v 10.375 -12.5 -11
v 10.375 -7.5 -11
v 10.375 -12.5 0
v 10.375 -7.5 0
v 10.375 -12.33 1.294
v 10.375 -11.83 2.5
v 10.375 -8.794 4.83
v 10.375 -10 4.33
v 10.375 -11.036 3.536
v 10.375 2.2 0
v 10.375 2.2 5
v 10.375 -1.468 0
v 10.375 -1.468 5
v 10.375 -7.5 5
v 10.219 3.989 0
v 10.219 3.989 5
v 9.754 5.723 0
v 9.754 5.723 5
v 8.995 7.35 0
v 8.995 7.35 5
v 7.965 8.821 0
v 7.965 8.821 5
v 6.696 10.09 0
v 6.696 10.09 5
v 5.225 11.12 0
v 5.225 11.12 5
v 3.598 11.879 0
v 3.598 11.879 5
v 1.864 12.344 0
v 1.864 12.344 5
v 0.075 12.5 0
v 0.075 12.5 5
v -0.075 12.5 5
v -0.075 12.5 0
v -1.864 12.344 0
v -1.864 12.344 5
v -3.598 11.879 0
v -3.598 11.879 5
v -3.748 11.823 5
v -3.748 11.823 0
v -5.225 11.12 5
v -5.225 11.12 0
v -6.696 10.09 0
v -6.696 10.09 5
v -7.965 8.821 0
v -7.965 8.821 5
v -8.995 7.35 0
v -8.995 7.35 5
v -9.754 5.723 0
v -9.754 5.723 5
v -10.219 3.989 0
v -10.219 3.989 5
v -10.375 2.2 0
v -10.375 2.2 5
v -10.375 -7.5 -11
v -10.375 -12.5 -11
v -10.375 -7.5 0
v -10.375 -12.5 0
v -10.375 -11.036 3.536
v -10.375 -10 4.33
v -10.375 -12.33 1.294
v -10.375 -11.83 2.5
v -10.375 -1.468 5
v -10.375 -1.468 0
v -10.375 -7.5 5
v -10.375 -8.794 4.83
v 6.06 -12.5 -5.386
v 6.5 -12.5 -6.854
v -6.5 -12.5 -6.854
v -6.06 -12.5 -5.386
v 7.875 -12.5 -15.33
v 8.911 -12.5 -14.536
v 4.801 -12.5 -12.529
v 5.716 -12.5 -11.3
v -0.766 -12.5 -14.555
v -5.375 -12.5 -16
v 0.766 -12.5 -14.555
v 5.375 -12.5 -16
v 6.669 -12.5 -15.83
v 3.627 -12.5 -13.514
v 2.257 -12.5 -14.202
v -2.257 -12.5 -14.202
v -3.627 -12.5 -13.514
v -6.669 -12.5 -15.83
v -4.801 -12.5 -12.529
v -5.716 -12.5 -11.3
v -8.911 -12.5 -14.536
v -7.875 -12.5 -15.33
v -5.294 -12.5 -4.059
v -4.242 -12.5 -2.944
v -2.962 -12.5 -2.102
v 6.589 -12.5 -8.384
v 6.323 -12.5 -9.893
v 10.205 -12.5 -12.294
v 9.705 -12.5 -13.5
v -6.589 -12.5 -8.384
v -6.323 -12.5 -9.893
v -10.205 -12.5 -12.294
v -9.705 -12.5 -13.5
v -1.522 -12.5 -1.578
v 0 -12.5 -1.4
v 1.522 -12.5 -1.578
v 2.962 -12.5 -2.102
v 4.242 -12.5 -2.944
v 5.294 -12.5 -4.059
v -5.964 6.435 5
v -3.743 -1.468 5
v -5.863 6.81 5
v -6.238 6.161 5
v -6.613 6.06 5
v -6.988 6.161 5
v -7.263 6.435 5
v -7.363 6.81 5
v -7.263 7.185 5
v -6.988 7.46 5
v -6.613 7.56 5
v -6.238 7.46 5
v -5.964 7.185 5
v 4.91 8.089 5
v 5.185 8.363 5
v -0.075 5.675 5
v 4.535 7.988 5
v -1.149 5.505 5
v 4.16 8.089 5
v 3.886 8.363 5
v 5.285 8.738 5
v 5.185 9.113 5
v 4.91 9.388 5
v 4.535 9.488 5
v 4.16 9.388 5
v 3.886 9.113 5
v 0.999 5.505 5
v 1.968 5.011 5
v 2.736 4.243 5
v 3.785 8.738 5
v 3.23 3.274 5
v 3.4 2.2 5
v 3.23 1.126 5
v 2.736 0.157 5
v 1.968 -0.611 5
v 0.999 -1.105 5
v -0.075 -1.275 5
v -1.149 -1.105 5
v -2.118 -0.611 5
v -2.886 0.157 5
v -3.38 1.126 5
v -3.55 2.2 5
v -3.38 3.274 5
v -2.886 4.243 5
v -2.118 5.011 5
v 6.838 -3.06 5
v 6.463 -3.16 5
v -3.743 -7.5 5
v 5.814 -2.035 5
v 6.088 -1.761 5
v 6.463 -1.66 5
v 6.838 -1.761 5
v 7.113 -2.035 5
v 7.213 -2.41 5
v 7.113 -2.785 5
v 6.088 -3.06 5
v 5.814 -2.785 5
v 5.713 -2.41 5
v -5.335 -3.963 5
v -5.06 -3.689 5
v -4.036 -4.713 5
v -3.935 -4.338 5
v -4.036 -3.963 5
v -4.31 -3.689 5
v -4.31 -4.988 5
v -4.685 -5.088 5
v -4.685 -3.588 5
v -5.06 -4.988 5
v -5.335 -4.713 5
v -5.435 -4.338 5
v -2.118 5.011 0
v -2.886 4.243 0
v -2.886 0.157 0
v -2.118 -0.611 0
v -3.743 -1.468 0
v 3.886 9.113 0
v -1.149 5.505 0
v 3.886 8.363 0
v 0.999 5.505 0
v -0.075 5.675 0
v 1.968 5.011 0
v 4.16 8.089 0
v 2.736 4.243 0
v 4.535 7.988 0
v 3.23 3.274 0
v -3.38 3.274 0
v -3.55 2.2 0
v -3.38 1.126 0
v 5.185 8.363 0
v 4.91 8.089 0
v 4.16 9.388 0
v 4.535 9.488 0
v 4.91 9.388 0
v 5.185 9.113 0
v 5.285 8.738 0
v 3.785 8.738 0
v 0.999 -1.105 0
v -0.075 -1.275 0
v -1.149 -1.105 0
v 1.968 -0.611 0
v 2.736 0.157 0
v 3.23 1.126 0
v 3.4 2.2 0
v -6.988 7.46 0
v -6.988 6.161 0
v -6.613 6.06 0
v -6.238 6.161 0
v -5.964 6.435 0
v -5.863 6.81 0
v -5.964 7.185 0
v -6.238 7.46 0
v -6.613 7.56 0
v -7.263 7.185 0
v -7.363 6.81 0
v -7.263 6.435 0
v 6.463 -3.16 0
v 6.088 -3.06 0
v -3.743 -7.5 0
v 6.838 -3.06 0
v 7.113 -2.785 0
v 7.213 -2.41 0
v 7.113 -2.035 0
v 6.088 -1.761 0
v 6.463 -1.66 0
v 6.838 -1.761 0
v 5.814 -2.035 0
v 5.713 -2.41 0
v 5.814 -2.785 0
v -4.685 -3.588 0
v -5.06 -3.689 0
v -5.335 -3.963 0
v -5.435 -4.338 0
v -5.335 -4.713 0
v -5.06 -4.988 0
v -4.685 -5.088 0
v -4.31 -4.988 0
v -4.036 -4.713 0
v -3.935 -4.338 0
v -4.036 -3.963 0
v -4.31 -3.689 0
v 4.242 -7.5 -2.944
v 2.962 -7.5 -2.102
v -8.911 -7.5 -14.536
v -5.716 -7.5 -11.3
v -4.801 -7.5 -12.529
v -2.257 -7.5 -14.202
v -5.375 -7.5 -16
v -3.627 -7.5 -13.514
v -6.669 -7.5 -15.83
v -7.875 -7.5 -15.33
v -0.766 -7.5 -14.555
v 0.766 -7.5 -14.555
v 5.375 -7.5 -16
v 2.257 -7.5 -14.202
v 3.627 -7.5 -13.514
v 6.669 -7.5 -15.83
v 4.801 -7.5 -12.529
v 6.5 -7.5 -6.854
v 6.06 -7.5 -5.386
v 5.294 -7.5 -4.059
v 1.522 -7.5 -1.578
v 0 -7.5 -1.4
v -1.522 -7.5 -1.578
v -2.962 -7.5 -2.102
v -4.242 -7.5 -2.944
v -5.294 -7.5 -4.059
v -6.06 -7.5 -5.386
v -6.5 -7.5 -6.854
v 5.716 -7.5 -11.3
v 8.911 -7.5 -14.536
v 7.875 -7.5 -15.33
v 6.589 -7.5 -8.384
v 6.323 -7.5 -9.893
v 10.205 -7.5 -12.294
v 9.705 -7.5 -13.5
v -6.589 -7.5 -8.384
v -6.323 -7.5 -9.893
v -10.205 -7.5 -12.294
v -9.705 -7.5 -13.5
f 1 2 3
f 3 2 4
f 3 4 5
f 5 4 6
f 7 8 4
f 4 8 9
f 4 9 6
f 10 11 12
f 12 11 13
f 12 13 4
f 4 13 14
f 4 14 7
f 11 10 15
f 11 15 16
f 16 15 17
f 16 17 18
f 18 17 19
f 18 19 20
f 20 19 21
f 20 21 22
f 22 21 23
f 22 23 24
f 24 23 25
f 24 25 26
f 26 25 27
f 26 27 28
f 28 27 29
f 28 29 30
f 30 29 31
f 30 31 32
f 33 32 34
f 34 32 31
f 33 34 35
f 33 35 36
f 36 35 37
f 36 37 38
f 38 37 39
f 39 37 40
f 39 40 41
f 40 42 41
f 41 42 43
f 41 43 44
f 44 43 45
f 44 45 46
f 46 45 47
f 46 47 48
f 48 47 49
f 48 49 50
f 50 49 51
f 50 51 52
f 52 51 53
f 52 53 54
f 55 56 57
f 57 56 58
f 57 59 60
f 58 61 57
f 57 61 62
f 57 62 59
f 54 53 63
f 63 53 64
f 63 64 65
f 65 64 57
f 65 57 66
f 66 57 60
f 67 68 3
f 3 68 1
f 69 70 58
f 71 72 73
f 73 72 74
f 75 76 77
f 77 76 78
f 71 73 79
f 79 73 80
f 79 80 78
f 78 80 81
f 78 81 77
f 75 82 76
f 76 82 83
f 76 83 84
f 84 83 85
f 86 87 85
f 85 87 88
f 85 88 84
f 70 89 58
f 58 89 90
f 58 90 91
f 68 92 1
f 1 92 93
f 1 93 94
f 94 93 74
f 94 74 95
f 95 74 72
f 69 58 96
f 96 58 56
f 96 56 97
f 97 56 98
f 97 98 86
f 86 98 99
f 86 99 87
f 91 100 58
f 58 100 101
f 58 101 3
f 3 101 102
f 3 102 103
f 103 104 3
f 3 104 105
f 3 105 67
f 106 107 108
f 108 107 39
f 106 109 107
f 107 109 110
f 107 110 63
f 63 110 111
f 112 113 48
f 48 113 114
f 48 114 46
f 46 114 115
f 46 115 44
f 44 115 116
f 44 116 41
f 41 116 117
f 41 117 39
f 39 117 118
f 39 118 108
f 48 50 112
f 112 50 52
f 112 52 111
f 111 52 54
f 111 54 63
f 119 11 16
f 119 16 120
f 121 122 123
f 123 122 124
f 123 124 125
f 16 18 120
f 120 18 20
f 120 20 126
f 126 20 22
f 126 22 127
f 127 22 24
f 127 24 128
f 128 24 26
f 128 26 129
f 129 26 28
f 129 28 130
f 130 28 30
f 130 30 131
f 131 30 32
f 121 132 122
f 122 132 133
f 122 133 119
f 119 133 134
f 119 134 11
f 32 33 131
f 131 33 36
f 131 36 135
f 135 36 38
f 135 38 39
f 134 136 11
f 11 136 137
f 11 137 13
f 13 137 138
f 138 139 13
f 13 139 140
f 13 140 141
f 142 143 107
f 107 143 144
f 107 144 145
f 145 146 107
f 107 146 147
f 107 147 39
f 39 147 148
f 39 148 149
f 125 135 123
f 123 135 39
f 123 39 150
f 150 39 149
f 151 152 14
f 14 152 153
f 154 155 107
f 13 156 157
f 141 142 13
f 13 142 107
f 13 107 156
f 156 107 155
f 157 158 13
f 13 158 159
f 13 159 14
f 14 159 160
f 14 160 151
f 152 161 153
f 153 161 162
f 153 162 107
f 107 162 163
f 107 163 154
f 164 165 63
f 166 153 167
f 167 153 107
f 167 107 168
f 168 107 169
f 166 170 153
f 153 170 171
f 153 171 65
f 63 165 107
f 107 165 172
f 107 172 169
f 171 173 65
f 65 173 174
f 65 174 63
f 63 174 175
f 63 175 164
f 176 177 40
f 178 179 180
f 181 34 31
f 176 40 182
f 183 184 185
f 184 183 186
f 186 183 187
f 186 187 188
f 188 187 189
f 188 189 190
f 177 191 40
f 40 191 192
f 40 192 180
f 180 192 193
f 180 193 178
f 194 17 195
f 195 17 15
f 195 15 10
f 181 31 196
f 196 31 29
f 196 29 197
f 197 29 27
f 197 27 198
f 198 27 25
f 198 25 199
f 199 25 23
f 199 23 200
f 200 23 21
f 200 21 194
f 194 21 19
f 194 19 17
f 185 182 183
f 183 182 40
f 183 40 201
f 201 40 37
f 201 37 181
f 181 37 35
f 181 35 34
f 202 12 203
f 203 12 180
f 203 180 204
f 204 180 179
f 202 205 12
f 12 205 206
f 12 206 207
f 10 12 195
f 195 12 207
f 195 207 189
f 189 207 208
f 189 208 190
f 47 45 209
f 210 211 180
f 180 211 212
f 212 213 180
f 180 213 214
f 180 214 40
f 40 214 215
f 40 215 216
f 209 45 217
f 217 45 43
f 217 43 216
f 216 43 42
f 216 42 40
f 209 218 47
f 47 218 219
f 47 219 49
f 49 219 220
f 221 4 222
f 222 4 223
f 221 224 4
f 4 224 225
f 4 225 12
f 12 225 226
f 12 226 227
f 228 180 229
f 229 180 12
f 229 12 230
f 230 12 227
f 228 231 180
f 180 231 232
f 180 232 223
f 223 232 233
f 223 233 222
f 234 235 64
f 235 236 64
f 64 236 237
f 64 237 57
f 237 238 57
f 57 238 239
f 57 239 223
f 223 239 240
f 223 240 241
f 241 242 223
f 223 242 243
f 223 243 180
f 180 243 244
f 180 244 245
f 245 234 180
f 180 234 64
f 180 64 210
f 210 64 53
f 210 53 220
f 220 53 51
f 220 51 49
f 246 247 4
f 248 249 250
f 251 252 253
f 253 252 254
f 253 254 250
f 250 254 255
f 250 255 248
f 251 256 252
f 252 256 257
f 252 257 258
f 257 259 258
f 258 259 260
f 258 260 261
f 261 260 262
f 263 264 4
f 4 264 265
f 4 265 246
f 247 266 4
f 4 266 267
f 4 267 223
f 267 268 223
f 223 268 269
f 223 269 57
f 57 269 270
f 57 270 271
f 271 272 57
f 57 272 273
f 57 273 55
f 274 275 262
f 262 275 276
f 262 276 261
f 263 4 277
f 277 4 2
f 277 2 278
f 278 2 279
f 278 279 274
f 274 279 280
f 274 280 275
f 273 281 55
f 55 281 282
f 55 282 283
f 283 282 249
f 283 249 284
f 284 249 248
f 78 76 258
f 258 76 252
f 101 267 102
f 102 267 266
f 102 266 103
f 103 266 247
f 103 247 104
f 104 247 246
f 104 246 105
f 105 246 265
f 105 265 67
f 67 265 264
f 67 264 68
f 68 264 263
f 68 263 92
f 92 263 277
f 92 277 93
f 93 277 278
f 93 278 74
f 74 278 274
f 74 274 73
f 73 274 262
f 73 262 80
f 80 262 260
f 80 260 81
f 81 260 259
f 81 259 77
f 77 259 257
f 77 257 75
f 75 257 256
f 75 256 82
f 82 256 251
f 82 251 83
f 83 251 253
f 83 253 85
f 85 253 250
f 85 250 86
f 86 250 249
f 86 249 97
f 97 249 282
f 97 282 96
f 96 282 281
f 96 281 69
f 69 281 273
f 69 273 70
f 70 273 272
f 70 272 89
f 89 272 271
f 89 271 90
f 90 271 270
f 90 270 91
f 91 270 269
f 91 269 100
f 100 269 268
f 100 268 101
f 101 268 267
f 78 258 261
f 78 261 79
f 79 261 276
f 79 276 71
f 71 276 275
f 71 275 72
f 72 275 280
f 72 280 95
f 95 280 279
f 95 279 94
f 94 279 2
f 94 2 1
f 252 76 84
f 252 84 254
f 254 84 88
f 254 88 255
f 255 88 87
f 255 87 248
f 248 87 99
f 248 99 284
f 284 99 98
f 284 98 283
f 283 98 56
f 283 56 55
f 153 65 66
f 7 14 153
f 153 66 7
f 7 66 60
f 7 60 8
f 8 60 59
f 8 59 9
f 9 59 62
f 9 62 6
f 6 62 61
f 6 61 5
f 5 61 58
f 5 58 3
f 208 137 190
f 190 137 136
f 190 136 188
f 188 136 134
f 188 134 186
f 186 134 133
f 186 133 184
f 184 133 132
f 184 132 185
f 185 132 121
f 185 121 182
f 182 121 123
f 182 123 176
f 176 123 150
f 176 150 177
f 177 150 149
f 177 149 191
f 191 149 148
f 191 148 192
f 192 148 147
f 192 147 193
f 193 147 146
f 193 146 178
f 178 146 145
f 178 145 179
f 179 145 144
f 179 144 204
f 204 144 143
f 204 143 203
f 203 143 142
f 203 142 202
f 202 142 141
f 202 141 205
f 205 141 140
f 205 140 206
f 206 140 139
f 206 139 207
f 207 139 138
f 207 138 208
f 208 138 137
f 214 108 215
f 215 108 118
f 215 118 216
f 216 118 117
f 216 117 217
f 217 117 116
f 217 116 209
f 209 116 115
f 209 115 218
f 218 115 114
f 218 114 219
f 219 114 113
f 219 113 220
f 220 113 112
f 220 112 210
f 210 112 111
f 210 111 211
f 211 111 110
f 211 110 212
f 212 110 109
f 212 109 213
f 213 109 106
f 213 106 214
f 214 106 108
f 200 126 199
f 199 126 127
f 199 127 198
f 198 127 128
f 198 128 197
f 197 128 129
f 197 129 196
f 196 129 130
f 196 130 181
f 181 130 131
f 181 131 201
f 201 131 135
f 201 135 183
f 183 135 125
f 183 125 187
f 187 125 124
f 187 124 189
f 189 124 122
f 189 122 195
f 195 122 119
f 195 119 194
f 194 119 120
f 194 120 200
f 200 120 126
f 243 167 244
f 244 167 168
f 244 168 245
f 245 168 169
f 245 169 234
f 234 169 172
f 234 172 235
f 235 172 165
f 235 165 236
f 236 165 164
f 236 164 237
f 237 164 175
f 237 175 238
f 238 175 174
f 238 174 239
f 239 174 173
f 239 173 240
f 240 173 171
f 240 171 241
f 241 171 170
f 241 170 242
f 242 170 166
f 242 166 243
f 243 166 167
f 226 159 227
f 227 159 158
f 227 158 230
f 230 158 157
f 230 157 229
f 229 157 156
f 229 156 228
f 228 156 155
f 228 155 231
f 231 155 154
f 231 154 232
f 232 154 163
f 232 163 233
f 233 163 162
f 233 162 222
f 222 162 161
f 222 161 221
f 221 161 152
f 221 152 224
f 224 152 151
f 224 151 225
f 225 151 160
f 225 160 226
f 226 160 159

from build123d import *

# Parameters (mm, degrees)
BOSS_EXTRUDE1_DEPTH = 5
BOSS_EXTRUDE2_START = -5
SKETCH2_W           = 20.75
SKETCH2_H           = 5
BOSS_EXTRUDE2_DEPTH = 16
SKETCH3_R           = 6.6
CUT_EXTRUDE1_DEPTH  = 28.634048292
FILLET2_R           = 5
FILLET3_R           = 5
SKETCH5_R           = 3.475
SKETCH5_R_2         = 0.75
CUT_EXTRUDE3_DEPTH  = 27.549776364


with BuildPart() as part:
    # Sketch1 → Boss-Extrude1 (new body)
    with BuildSketch(Plane.XY):
        with BuildLine():
            Line((-0.075, 12.5), (0.075, 12.5))
            ThreePointArc((0.075, 12.5), (7.358199846, 9.483199846), (10.375, 2.2))
            Line((10.375, 2.2), (10.375, -12.5))
            Line((10.375, -12.5), (-10.375, -12.5))
            Line((-10.375, -12.5), (-10.375, 2.2))
            ThreePointArc((-10.375, 2.2), (-7.358199846, 9.483199846), (-0.075, 12.5))
        make_face()
    extrude(amount=BOSS_EXTRUDE1_DEPTH)

    # Sketch2 → Boss-Extrude2 (add)
    with BuildSketch(Plane.XY.offset(5).offset(BOSS_EXTRUDE2_START)):
        with Locations((0, -10)):
            Rectangle(SKETCH2_W, SKETCH2_H)
    extrude(amount=-BOSS_EXTRUDE2_DEPTH)

    # Sketch3 → Cut-Extrude1 (cut, through all)
    with BuildSketch(Plane(origin=(0, -7.5, 0), x_dir=(1, 0, 0), z_dir=(0, 1, 0))):
        with Locations(Location((0, 8, 0), (0, 0, 270))):
            Circle(SKETCH3_R)
    extrude(amount=-CUT_EXTRUDE1_DEPTH, mode=Mode.SUBTRACT)

    # Fillet2
    fillet2_edges = [part.edges().sort_by_distance(p)[0] for p in [
        (10.375, -10, -16),
        (-10.375, -10, -16),
    ]]
    fillet(fillet2_edges, radius=FILLET2_R)

    # Fillet3
    fillet3_edges = [part.edges().sort_by_distance(p)[0] for p in [
        (0, -12.5, 5),
    ]]
    fillet(fillet3_edges, radius=FILLET3_R)

    # Sketch5 → Cut-Extrude3 (cut, through all)
    with BuildSketch(Plane.XY.offset(5)):
        with Locations((-0.075, 2.2)):
            Circle(SKETCH5_R)
        with Locations((-6.613093573, 6.810133667)):
            Circle(SKETCH5_R_2)
        with Locations((4.535133667, 8.738093573)):
            Circle(SKETCH5_R_2)
        with Locations((-4.685133667, -4.338093573)):
            Circle(SKETCH5_R_2)
        with Locations((6.463093573, -2.410133667)):
            Circle(SKETCH5_R_2)
    extrude(amount=-CUT_EXTRUDE3_DEPTH, mode=Mode.SUBTRACT)


solid = part.part
